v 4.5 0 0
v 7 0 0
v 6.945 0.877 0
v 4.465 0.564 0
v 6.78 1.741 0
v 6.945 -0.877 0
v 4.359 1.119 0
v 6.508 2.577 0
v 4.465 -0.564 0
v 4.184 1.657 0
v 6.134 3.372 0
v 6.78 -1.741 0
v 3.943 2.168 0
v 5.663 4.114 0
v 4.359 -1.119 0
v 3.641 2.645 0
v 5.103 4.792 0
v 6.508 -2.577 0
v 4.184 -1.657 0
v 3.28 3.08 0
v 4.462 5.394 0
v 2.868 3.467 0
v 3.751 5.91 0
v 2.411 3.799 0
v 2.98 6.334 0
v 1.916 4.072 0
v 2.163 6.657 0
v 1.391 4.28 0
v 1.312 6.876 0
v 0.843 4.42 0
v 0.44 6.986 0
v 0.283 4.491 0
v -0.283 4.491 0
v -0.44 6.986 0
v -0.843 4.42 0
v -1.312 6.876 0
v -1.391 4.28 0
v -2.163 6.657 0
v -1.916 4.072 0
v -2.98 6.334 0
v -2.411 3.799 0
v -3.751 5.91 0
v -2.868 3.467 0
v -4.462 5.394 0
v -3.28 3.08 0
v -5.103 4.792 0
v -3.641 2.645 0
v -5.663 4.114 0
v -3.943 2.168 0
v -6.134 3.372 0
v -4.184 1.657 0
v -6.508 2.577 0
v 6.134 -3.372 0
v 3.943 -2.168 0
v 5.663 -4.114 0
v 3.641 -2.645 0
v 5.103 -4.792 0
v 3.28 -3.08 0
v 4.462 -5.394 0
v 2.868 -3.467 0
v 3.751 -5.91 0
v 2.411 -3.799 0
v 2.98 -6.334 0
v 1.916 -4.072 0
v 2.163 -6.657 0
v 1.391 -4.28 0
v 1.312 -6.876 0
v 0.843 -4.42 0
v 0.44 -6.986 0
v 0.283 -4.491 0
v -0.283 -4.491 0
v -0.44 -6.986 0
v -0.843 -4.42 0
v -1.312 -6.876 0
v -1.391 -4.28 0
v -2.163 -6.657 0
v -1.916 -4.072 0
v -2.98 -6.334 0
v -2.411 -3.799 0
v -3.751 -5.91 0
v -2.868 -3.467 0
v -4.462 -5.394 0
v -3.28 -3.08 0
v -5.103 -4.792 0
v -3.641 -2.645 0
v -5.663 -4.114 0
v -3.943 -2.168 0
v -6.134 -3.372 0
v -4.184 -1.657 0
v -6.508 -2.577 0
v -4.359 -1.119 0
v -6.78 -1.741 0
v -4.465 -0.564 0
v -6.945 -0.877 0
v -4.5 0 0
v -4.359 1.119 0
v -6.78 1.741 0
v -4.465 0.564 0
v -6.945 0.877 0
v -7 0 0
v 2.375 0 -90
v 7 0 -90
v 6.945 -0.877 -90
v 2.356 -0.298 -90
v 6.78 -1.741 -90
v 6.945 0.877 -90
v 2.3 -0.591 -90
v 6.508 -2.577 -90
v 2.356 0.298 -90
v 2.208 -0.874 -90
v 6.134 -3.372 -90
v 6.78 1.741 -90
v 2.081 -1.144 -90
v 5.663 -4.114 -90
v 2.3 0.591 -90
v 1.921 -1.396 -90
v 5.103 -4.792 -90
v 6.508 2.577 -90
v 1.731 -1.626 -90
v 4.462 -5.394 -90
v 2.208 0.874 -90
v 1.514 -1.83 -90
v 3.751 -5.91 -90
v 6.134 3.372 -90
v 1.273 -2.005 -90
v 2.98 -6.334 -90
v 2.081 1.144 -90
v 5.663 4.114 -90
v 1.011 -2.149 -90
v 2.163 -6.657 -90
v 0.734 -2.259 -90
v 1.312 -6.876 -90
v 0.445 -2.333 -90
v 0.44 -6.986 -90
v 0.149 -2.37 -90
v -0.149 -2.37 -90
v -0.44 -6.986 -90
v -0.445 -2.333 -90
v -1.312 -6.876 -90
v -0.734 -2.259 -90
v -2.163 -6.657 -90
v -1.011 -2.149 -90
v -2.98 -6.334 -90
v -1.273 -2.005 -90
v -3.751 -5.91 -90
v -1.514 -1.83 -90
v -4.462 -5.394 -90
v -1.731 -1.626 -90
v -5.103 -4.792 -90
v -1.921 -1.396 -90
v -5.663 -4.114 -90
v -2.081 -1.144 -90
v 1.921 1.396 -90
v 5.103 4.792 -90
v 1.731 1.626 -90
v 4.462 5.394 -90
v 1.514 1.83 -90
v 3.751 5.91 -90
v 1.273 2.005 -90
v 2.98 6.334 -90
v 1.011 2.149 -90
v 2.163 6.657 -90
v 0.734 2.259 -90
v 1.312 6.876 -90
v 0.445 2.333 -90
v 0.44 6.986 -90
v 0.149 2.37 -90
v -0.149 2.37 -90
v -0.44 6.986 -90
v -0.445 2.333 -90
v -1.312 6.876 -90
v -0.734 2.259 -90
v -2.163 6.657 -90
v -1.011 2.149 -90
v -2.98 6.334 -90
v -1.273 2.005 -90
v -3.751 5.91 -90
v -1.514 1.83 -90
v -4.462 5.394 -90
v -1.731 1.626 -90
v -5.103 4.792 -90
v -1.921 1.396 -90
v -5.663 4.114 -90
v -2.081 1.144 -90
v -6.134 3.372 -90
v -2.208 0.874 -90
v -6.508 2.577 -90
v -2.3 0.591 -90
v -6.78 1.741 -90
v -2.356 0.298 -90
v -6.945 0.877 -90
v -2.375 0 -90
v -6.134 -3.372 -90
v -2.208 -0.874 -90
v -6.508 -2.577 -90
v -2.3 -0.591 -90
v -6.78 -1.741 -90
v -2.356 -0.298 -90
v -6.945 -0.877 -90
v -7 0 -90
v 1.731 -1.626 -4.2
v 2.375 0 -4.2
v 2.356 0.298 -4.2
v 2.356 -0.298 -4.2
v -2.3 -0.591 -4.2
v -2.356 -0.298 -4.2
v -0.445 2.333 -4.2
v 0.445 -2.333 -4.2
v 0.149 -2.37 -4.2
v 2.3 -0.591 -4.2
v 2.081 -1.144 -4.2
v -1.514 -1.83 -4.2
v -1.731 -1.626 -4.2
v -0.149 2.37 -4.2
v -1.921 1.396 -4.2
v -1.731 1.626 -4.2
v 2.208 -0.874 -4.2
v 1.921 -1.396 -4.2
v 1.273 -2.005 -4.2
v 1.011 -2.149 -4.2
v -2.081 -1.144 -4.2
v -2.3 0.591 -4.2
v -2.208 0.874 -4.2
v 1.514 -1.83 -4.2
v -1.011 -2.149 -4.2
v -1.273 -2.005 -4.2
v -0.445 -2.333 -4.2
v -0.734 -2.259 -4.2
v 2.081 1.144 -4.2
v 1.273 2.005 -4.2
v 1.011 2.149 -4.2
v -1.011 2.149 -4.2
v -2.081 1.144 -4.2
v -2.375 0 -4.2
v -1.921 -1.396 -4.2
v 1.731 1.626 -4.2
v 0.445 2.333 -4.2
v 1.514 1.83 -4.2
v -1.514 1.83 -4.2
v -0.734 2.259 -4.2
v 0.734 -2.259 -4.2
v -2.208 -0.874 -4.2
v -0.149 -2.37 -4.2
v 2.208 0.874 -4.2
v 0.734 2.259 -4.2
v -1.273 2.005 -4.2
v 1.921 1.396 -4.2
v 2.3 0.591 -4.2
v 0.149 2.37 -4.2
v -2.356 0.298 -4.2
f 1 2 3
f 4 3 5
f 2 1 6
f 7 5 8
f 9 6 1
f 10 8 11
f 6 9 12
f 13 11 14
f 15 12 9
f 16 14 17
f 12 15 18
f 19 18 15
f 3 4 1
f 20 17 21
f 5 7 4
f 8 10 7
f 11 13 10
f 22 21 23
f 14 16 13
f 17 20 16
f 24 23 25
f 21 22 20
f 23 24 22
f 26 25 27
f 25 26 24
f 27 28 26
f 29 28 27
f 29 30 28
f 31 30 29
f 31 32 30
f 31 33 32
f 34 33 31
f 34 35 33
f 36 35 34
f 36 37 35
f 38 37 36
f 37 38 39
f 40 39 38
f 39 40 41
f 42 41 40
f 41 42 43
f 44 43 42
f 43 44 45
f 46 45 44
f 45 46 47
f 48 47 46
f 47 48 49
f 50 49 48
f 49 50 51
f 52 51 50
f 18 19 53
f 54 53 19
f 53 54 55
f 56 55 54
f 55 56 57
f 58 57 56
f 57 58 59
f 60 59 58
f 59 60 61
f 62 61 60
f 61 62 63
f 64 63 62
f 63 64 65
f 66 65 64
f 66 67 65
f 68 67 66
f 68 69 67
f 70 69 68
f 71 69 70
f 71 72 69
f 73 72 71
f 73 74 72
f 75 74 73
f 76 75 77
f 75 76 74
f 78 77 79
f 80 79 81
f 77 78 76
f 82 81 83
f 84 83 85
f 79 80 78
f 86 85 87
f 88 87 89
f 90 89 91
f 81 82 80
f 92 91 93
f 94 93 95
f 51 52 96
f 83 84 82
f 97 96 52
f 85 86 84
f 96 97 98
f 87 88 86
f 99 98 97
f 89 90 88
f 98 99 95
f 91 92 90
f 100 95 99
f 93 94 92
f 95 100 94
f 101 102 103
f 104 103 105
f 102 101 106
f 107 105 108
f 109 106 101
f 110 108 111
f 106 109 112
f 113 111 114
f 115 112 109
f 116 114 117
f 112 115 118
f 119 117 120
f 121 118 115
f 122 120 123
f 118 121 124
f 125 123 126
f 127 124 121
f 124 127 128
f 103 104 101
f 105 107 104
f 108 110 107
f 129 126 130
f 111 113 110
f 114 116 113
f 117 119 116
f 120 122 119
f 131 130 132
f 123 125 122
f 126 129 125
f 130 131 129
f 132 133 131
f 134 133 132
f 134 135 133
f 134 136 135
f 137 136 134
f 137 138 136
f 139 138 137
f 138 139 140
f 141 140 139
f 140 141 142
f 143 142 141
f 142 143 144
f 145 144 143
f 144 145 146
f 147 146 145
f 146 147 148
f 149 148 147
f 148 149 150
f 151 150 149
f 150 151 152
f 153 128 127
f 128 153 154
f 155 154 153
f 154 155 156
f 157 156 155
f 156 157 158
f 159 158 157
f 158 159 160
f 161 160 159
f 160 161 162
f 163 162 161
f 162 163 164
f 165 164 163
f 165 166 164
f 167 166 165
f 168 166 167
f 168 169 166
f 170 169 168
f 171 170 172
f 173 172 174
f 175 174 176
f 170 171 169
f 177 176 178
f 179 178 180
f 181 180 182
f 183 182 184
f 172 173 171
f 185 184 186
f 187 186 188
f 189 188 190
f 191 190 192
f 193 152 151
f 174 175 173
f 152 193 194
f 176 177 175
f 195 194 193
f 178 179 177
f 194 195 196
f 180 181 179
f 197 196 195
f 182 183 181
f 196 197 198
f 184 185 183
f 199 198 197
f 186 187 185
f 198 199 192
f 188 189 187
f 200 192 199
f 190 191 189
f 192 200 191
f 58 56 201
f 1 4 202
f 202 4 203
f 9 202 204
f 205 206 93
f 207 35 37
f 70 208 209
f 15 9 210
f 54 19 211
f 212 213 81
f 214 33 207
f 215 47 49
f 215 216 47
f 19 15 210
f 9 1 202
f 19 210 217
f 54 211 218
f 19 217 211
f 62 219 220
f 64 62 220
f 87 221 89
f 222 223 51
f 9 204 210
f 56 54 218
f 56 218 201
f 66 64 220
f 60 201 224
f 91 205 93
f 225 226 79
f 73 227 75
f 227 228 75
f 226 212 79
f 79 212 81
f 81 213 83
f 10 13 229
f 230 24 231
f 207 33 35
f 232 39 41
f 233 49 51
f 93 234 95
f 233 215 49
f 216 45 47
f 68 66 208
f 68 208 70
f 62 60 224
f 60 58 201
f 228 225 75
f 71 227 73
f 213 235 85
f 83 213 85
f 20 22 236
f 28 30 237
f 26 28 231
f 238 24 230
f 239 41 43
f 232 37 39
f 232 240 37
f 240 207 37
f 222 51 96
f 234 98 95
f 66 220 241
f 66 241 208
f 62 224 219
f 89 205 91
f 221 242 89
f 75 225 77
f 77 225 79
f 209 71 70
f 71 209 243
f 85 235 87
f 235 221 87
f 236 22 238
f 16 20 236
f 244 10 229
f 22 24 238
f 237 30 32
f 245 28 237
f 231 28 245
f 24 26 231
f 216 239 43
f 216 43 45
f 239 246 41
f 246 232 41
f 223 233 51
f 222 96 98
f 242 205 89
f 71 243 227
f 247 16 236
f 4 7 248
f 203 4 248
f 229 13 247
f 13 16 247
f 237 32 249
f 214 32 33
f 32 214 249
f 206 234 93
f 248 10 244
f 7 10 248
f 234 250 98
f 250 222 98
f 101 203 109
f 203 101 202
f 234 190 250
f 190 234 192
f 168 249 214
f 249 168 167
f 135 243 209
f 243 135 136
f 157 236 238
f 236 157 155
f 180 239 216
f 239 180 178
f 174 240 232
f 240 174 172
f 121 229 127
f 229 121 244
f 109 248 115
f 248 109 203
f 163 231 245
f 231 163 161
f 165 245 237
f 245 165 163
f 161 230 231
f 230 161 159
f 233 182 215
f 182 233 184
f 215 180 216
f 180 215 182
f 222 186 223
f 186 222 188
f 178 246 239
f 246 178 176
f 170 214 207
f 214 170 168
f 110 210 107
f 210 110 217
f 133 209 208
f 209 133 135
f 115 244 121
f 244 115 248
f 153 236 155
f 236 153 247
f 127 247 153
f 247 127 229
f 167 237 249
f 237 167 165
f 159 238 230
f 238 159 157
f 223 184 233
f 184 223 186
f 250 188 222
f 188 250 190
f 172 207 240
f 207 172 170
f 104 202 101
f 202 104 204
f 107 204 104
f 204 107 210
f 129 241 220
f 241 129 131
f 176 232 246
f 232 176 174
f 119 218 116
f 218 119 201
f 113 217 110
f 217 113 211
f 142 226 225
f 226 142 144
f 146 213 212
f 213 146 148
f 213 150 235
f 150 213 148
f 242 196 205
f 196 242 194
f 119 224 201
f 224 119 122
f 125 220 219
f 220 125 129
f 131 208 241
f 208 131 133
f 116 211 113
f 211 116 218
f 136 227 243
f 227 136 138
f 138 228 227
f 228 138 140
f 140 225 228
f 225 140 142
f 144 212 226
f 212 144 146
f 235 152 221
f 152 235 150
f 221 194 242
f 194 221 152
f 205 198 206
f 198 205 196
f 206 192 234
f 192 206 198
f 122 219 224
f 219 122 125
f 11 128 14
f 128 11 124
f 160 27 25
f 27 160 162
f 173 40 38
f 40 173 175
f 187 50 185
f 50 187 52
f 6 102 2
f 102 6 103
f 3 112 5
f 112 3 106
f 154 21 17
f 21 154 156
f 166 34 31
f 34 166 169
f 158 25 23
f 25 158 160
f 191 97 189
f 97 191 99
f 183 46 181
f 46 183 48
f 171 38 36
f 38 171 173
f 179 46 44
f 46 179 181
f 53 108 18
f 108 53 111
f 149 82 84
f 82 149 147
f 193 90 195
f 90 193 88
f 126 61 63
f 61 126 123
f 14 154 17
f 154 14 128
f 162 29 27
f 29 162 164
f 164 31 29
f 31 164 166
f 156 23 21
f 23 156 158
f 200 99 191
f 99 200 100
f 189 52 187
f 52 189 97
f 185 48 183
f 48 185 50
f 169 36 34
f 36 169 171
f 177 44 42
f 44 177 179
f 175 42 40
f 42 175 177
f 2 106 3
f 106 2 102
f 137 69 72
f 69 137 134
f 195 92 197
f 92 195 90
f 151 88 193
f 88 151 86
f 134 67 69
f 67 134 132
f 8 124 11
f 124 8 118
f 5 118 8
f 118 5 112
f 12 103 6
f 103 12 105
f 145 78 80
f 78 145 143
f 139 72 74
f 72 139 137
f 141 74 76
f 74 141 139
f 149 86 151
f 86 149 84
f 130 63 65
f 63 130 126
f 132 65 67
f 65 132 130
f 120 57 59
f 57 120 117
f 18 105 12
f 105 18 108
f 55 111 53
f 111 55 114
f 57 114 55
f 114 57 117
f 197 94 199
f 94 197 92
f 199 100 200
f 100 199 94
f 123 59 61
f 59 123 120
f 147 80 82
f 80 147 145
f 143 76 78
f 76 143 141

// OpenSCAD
$fn = 50;


difference() {
	union() {
		translate(v = [0, 0, -90.0000000000]) {
			cylinder(h = 90, r = 7.0000000000);
		}
	}
	union() {
		translate(v = [0, 0, 0]) {
			rotate(a = [0, 0, 0]) {
				difference() {
					union() {
						#translate(v = [0, 0, -90.0000000000]) {
							cylinder(h = 90, r = 2.2500000000);
						}
						#translate(v = [0, 0, -4.2000000000]) {
							cylinder(h = 4.2000000000, r = 7.0000000000, r1 = 2.3750000000, r2 = 4.5000000000);
						}
						#translate(v = [0, 0, -90.0000000000]) {
							cylinder(h = 90, r = 2.3750000000);
						}
						#translate(v = [0, 0, -90.0000000000]) {
							cylinder(h = 90, r = 2.2500000000);
						}
					}
					union();
				}
			}
		}
	}
}
